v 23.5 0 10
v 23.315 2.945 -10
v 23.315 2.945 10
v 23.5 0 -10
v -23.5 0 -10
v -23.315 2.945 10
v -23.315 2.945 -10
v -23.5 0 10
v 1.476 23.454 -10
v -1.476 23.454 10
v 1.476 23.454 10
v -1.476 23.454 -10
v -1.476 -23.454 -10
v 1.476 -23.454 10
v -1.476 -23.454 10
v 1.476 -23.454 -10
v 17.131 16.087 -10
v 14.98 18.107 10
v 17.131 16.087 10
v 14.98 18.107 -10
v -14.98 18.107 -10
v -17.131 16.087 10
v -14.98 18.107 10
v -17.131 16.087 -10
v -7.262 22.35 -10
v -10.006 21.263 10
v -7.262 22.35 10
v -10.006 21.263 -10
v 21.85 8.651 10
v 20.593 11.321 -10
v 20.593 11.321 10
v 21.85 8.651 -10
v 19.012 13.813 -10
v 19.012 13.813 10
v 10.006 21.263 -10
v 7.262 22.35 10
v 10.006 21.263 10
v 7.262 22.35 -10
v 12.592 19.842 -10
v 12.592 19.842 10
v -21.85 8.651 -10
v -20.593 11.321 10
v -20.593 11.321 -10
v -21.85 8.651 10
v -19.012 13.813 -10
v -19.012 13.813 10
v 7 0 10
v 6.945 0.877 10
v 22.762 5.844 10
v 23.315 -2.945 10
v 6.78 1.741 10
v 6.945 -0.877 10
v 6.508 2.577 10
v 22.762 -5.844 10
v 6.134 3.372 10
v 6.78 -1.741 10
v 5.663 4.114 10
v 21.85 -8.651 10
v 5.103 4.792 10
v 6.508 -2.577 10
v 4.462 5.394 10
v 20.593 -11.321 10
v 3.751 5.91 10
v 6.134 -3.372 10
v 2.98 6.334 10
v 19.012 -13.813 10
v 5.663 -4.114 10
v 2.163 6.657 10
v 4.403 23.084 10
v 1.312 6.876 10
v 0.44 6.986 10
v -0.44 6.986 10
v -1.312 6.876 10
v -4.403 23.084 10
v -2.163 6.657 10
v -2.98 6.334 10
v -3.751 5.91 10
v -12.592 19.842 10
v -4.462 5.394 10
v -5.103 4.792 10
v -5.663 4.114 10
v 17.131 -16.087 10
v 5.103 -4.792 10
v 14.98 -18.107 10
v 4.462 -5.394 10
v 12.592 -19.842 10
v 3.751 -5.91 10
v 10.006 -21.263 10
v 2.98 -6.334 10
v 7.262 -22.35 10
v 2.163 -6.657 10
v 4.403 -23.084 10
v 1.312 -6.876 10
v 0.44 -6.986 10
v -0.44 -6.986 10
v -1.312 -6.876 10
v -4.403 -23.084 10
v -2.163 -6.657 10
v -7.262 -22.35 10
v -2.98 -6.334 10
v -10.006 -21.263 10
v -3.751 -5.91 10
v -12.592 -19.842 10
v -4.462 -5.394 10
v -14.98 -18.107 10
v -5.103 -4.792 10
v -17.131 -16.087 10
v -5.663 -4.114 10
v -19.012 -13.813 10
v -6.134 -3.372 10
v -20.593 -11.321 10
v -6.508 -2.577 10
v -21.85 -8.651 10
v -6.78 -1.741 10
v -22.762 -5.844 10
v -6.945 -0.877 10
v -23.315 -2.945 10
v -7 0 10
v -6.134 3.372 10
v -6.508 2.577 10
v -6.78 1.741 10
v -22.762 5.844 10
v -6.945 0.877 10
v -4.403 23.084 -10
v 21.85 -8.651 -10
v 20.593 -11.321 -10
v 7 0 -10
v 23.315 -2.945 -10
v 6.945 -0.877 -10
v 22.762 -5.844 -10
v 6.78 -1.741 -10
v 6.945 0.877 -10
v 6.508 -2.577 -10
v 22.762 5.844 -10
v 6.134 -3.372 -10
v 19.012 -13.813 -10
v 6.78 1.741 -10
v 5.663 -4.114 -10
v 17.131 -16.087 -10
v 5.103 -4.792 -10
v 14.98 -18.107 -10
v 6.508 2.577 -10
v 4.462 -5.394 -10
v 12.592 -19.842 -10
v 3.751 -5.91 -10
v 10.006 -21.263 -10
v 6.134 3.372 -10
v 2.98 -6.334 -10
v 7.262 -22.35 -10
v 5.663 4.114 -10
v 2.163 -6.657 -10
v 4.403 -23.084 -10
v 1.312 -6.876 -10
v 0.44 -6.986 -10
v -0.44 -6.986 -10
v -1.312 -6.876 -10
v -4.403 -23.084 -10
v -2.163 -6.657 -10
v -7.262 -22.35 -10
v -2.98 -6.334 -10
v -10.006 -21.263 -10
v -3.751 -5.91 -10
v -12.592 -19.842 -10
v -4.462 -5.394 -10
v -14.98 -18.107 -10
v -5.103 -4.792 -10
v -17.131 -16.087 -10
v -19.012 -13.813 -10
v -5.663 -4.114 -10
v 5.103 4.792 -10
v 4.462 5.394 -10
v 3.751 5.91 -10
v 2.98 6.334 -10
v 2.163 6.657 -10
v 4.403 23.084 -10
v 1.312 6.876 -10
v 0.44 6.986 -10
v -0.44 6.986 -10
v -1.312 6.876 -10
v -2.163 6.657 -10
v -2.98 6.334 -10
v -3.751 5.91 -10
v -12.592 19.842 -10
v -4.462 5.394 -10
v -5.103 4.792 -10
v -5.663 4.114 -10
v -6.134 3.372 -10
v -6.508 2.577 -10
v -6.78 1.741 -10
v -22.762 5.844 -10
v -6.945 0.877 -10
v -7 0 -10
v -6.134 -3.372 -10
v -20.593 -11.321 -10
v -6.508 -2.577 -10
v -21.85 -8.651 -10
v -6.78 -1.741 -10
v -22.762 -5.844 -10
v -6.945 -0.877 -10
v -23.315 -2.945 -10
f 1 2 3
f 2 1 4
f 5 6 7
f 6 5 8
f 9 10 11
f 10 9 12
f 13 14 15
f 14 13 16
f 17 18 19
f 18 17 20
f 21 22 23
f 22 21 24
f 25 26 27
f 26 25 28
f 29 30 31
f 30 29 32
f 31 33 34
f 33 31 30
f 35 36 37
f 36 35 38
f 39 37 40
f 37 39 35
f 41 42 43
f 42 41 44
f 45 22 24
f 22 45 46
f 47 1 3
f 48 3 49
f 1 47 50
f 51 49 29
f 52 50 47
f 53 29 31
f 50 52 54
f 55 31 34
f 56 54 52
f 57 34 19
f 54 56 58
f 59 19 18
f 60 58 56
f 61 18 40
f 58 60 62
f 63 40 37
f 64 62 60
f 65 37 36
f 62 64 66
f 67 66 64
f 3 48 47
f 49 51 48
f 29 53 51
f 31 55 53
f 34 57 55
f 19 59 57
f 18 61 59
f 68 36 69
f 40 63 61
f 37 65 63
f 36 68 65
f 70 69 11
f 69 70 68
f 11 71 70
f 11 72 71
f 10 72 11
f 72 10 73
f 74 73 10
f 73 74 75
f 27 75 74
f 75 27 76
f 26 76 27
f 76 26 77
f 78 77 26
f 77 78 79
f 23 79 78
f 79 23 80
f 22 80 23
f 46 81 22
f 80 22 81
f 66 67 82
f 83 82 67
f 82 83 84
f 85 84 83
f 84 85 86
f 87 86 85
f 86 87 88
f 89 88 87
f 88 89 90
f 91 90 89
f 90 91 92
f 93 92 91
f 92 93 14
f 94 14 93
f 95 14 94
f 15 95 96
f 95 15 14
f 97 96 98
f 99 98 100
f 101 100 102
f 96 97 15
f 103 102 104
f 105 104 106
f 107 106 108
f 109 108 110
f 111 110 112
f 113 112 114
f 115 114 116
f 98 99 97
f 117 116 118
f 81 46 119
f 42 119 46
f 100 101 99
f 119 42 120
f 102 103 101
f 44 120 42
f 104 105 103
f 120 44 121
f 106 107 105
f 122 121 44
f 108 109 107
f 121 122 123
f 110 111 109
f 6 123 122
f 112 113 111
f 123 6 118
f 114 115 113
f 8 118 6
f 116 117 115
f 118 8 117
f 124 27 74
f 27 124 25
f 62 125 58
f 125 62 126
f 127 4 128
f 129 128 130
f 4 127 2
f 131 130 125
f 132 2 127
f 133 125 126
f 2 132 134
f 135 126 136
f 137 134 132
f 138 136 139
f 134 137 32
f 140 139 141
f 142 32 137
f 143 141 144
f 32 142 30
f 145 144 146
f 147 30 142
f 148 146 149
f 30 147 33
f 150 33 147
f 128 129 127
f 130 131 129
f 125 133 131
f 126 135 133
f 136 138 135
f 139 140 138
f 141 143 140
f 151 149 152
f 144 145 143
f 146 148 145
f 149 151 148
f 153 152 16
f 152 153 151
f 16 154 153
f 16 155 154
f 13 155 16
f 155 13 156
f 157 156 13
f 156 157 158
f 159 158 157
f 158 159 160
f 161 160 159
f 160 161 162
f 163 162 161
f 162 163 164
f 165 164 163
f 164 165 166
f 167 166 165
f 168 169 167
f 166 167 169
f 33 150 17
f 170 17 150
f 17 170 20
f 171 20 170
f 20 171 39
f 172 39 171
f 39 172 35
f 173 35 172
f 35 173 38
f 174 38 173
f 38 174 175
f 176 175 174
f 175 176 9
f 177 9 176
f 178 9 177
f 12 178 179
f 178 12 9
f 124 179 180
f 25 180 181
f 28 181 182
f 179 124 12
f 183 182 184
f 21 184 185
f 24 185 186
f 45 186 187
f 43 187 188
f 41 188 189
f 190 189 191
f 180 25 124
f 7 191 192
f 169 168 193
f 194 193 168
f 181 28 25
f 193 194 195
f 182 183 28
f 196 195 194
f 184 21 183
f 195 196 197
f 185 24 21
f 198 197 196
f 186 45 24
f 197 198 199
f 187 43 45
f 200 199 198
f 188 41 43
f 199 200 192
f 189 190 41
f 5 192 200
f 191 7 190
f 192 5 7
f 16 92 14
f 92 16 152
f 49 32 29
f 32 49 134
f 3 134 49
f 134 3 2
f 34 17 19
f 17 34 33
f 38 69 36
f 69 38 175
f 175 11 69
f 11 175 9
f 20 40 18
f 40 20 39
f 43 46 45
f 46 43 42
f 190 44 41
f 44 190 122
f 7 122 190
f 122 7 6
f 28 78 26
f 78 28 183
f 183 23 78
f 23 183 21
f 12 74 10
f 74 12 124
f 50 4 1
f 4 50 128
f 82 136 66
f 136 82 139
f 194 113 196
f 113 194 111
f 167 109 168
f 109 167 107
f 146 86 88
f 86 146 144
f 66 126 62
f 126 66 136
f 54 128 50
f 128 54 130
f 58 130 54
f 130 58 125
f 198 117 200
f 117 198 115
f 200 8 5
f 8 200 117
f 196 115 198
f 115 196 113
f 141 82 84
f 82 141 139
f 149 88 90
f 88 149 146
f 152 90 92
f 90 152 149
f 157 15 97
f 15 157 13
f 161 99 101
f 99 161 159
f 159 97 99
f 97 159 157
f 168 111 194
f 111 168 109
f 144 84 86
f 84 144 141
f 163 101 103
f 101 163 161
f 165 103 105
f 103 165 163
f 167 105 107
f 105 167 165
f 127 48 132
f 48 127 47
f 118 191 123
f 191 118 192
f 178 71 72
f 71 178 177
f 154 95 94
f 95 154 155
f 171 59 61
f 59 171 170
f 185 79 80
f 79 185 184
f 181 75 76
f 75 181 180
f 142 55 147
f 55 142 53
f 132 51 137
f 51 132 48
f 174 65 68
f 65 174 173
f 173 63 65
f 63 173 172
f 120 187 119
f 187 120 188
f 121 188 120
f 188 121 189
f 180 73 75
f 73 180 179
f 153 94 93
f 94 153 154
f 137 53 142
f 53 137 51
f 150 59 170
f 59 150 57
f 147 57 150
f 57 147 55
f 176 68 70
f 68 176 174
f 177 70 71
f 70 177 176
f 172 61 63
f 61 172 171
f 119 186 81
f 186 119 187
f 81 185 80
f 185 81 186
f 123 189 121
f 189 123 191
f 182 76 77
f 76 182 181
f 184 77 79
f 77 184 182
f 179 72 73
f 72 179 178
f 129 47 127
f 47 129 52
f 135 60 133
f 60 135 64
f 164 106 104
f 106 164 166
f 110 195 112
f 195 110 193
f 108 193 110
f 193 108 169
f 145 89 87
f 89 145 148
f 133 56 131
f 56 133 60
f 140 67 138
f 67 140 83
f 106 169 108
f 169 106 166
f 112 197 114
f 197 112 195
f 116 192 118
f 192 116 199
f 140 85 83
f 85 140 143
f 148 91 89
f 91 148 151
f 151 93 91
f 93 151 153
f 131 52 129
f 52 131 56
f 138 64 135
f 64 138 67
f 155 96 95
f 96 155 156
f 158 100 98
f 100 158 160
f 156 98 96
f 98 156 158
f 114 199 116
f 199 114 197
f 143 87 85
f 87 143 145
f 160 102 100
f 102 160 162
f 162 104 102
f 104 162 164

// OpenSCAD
$fn = 50;


difference() {
	union() {
		translate(v = [0, 0, -10.0000000000]) {
			cylinder(h = 20, r = 23.5000000000);
		}
	}
	union() {
		translate(v = [0, 0, -100.0000000000]) {
			cylinder(h = 200, r = 7);
		}
	}
}
